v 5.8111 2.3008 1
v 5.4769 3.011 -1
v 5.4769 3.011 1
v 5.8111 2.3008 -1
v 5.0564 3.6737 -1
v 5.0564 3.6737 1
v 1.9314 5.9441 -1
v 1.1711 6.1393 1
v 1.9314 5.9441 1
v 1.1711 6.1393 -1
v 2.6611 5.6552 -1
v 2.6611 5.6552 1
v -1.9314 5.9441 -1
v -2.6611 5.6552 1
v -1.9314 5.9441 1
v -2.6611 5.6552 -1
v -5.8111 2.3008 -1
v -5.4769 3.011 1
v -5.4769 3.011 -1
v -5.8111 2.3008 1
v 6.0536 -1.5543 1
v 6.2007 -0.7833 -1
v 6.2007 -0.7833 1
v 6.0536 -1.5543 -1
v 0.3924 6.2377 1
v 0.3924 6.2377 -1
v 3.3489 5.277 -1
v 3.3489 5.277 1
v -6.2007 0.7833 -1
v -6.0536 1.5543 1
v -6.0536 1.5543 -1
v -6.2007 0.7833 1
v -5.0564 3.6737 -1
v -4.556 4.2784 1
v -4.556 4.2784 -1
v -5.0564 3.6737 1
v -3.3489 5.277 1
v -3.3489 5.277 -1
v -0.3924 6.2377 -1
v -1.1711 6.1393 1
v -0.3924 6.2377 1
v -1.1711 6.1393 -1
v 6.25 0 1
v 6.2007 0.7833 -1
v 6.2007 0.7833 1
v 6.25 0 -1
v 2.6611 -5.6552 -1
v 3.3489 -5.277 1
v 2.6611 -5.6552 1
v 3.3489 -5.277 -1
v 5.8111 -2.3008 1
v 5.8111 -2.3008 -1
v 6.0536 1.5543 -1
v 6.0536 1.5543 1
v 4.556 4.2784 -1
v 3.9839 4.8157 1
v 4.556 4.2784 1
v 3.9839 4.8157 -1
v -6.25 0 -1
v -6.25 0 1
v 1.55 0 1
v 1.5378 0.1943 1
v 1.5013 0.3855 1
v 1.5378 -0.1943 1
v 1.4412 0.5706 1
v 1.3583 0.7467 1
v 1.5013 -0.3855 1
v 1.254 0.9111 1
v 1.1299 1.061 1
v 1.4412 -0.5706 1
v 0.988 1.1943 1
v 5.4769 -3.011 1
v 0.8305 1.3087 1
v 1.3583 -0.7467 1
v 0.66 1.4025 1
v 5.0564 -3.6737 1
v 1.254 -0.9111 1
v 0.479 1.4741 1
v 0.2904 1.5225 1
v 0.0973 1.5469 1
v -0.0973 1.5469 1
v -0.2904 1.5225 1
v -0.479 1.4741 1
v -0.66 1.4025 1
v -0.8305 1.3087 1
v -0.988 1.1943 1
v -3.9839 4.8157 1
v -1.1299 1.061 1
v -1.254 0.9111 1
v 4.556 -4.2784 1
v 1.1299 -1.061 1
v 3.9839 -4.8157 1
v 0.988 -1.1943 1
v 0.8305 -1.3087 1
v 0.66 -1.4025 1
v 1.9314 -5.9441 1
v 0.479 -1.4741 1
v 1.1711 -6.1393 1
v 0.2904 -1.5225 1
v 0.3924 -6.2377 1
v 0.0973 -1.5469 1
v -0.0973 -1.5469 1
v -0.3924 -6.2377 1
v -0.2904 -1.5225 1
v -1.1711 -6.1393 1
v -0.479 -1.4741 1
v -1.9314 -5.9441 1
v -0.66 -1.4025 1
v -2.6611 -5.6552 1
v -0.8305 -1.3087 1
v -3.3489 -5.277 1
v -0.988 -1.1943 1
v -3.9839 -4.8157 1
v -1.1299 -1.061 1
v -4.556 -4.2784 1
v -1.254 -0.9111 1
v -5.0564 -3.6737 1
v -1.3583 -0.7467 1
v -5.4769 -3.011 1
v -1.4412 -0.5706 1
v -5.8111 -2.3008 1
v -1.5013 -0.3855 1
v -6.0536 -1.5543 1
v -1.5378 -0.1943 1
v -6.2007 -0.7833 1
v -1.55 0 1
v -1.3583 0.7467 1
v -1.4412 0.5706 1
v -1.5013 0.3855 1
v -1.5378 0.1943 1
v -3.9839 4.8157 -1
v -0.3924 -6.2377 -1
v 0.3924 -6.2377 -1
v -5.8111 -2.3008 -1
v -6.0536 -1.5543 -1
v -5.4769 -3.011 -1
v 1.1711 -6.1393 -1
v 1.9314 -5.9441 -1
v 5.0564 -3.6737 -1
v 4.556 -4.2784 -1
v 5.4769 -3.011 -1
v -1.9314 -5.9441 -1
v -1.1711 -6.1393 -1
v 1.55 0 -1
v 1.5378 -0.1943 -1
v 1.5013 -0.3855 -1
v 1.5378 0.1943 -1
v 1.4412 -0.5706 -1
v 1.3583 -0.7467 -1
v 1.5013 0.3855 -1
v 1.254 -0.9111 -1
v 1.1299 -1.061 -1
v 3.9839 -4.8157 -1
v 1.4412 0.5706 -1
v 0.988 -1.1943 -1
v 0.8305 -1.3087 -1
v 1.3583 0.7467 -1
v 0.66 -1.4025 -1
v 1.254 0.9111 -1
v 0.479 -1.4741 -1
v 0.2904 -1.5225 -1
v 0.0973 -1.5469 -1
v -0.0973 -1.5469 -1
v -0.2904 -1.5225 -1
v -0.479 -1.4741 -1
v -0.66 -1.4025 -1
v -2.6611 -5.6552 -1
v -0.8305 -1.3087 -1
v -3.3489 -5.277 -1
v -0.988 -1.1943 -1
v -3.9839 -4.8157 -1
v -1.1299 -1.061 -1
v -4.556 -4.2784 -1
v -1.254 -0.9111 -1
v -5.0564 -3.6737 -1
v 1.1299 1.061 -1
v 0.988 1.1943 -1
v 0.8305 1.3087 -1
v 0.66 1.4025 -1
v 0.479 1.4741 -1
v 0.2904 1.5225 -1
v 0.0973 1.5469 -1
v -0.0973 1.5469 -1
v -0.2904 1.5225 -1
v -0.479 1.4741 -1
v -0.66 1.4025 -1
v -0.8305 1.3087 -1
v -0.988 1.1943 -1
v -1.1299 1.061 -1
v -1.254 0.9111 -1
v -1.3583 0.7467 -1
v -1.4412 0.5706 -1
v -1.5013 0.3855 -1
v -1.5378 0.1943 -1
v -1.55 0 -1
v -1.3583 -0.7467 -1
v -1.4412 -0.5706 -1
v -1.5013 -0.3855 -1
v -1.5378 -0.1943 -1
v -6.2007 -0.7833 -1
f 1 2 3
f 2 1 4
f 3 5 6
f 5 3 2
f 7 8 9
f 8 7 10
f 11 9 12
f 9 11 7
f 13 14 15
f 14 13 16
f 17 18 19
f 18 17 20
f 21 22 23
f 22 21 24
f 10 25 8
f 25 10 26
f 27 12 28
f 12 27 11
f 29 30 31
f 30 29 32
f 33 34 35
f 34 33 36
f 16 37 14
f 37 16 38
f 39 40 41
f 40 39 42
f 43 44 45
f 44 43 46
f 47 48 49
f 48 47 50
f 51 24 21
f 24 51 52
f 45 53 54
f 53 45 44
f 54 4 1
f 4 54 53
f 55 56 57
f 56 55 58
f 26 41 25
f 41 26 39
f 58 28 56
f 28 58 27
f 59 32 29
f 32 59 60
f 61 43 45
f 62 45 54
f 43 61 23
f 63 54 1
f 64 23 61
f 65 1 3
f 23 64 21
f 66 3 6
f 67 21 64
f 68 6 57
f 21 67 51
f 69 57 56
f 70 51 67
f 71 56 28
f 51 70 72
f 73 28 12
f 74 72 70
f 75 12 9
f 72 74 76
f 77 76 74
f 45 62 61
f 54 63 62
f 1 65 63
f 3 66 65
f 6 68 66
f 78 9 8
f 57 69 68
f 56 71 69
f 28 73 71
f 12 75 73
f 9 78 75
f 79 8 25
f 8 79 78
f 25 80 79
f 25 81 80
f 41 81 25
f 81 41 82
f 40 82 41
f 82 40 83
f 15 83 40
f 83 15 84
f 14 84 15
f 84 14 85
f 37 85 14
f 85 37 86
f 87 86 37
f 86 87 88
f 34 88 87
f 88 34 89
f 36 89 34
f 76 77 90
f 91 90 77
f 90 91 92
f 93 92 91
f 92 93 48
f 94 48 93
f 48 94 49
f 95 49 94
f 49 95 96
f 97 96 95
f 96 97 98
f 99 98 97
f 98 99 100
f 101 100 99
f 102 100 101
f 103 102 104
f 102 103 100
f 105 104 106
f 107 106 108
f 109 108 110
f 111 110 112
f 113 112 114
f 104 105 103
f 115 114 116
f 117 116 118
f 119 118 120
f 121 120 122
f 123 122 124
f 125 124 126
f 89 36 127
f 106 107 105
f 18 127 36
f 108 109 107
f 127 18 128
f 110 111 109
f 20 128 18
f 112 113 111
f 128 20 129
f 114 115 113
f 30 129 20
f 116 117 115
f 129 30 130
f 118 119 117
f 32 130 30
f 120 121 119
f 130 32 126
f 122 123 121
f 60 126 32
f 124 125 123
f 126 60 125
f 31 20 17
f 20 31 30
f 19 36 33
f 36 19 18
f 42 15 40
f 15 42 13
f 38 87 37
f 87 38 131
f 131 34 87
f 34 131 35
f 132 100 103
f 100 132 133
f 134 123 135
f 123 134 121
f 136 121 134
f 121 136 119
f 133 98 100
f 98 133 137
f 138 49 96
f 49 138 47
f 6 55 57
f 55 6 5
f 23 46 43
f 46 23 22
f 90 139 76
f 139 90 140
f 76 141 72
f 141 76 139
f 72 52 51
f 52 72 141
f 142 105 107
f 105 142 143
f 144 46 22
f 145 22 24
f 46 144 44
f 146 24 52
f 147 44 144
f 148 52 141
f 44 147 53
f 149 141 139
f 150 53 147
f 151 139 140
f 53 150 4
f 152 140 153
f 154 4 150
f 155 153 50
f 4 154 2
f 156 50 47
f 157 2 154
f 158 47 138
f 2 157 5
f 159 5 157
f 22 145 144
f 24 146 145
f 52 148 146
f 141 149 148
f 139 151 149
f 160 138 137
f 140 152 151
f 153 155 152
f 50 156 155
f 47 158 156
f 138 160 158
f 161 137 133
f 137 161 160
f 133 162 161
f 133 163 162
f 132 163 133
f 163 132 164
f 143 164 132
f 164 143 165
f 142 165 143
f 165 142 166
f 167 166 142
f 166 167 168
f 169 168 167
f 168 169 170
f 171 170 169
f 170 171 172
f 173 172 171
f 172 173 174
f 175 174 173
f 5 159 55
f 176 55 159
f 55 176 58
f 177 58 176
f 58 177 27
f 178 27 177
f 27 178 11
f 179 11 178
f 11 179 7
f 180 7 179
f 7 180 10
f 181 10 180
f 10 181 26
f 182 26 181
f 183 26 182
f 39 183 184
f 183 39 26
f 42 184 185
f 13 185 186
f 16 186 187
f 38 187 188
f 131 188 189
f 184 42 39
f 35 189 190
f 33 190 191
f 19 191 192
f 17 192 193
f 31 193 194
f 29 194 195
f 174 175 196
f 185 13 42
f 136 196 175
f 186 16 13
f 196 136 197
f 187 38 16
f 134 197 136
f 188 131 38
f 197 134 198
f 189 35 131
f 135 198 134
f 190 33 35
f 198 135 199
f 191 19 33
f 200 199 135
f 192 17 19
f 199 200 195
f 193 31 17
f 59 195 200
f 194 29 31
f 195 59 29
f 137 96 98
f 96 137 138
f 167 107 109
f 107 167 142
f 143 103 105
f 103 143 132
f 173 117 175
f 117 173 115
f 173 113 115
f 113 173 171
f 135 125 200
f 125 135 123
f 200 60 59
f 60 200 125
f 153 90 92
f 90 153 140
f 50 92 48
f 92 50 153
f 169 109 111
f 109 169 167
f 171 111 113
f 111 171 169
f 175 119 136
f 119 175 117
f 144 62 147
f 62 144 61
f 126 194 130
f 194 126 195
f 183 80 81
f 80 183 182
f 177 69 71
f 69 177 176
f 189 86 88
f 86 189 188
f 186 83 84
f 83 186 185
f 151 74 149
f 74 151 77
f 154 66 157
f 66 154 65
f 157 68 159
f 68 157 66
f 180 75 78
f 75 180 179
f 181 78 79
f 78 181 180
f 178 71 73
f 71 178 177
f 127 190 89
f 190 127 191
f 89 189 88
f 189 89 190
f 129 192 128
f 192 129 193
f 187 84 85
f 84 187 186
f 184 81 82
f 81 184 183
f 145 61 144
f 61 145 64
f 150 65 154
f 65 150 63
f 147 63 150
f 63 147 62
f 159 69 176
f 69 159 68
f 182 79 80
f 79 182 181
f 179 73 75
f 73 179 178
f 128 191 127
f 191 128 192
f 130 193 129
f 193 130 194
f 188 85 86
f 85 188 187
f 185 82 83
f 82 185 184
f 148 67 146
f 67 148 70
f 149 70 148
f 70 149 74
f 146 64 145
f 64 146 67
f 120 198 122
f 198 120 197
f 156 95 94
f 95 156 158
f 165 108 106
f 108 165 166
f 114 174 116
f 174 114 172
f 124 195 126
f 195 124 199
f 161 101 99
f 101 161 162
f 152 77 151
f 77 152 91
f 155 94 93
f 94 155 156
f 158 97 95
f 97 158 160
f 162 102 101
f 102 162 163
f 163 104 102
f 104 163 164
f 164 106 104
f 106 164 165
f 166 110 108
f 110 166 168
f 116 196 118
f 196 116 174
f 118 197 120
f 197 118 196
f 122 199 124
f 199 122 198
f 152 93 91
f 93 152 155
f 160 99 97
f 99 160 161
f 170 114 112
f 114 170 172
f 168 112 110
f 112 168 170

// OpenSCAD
$fn = 50;


difference() {
	union() {
		translate(v = [0, 0, -1.0000000000]) {
			cylinder(h = 2, r = 6.2500000000);
		}
	}
	union() {
		translate(v = [0, 0, -100.0000000000]) {
			cylinder(h = 200, r = 1.5500000000);
		}
	}
}
